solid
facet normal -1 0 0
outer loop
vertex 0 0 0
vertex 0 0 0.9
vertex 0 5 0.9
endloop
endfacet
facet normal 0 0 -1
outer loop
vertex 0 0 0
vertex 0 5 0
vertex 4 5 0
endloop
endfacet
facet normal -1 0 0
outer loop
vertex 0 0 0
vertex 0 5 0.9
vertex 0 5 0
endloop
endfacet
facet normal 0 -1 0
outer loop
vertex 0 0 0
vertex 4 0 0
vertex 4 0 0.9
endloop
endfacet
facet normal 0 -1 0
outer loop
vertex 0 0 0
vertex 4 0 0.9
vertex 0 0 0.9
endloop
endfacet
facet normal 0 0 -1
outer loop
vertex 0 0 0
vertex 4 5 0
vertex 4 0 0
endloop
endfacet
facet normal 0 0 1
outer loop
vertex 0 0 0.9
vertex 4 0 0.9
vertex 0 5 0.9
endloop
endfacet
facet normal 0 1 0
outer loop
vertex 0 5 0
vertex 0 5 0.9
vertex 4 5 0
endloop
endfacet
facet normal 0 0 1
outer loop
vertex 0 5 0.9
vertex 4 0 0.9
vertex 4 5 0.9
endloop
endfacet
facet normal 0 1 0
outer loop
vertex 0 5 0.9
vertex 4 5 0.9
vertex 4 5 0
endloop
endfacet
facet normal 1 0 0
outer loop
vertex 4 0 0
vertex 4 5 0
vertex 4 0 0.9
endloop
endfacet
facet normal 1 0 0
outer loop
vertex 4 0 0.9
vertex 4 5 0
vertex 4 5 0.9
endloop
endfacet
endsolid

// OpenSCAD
/* Warning, this is a very basic generator with a lot of approximation 
input data : [VDFN, JYA, 4x5x0.9mm, 20, , A, C04-01024A]
generated by com.zoubworld.electronics.cad.model3d.Basic
Date : Sun Feb 15 10:50:49 CET 2026
*/

//body
color("black")
translate([0,0,0])
cube([4.0,5.0,0.9], center=false);
